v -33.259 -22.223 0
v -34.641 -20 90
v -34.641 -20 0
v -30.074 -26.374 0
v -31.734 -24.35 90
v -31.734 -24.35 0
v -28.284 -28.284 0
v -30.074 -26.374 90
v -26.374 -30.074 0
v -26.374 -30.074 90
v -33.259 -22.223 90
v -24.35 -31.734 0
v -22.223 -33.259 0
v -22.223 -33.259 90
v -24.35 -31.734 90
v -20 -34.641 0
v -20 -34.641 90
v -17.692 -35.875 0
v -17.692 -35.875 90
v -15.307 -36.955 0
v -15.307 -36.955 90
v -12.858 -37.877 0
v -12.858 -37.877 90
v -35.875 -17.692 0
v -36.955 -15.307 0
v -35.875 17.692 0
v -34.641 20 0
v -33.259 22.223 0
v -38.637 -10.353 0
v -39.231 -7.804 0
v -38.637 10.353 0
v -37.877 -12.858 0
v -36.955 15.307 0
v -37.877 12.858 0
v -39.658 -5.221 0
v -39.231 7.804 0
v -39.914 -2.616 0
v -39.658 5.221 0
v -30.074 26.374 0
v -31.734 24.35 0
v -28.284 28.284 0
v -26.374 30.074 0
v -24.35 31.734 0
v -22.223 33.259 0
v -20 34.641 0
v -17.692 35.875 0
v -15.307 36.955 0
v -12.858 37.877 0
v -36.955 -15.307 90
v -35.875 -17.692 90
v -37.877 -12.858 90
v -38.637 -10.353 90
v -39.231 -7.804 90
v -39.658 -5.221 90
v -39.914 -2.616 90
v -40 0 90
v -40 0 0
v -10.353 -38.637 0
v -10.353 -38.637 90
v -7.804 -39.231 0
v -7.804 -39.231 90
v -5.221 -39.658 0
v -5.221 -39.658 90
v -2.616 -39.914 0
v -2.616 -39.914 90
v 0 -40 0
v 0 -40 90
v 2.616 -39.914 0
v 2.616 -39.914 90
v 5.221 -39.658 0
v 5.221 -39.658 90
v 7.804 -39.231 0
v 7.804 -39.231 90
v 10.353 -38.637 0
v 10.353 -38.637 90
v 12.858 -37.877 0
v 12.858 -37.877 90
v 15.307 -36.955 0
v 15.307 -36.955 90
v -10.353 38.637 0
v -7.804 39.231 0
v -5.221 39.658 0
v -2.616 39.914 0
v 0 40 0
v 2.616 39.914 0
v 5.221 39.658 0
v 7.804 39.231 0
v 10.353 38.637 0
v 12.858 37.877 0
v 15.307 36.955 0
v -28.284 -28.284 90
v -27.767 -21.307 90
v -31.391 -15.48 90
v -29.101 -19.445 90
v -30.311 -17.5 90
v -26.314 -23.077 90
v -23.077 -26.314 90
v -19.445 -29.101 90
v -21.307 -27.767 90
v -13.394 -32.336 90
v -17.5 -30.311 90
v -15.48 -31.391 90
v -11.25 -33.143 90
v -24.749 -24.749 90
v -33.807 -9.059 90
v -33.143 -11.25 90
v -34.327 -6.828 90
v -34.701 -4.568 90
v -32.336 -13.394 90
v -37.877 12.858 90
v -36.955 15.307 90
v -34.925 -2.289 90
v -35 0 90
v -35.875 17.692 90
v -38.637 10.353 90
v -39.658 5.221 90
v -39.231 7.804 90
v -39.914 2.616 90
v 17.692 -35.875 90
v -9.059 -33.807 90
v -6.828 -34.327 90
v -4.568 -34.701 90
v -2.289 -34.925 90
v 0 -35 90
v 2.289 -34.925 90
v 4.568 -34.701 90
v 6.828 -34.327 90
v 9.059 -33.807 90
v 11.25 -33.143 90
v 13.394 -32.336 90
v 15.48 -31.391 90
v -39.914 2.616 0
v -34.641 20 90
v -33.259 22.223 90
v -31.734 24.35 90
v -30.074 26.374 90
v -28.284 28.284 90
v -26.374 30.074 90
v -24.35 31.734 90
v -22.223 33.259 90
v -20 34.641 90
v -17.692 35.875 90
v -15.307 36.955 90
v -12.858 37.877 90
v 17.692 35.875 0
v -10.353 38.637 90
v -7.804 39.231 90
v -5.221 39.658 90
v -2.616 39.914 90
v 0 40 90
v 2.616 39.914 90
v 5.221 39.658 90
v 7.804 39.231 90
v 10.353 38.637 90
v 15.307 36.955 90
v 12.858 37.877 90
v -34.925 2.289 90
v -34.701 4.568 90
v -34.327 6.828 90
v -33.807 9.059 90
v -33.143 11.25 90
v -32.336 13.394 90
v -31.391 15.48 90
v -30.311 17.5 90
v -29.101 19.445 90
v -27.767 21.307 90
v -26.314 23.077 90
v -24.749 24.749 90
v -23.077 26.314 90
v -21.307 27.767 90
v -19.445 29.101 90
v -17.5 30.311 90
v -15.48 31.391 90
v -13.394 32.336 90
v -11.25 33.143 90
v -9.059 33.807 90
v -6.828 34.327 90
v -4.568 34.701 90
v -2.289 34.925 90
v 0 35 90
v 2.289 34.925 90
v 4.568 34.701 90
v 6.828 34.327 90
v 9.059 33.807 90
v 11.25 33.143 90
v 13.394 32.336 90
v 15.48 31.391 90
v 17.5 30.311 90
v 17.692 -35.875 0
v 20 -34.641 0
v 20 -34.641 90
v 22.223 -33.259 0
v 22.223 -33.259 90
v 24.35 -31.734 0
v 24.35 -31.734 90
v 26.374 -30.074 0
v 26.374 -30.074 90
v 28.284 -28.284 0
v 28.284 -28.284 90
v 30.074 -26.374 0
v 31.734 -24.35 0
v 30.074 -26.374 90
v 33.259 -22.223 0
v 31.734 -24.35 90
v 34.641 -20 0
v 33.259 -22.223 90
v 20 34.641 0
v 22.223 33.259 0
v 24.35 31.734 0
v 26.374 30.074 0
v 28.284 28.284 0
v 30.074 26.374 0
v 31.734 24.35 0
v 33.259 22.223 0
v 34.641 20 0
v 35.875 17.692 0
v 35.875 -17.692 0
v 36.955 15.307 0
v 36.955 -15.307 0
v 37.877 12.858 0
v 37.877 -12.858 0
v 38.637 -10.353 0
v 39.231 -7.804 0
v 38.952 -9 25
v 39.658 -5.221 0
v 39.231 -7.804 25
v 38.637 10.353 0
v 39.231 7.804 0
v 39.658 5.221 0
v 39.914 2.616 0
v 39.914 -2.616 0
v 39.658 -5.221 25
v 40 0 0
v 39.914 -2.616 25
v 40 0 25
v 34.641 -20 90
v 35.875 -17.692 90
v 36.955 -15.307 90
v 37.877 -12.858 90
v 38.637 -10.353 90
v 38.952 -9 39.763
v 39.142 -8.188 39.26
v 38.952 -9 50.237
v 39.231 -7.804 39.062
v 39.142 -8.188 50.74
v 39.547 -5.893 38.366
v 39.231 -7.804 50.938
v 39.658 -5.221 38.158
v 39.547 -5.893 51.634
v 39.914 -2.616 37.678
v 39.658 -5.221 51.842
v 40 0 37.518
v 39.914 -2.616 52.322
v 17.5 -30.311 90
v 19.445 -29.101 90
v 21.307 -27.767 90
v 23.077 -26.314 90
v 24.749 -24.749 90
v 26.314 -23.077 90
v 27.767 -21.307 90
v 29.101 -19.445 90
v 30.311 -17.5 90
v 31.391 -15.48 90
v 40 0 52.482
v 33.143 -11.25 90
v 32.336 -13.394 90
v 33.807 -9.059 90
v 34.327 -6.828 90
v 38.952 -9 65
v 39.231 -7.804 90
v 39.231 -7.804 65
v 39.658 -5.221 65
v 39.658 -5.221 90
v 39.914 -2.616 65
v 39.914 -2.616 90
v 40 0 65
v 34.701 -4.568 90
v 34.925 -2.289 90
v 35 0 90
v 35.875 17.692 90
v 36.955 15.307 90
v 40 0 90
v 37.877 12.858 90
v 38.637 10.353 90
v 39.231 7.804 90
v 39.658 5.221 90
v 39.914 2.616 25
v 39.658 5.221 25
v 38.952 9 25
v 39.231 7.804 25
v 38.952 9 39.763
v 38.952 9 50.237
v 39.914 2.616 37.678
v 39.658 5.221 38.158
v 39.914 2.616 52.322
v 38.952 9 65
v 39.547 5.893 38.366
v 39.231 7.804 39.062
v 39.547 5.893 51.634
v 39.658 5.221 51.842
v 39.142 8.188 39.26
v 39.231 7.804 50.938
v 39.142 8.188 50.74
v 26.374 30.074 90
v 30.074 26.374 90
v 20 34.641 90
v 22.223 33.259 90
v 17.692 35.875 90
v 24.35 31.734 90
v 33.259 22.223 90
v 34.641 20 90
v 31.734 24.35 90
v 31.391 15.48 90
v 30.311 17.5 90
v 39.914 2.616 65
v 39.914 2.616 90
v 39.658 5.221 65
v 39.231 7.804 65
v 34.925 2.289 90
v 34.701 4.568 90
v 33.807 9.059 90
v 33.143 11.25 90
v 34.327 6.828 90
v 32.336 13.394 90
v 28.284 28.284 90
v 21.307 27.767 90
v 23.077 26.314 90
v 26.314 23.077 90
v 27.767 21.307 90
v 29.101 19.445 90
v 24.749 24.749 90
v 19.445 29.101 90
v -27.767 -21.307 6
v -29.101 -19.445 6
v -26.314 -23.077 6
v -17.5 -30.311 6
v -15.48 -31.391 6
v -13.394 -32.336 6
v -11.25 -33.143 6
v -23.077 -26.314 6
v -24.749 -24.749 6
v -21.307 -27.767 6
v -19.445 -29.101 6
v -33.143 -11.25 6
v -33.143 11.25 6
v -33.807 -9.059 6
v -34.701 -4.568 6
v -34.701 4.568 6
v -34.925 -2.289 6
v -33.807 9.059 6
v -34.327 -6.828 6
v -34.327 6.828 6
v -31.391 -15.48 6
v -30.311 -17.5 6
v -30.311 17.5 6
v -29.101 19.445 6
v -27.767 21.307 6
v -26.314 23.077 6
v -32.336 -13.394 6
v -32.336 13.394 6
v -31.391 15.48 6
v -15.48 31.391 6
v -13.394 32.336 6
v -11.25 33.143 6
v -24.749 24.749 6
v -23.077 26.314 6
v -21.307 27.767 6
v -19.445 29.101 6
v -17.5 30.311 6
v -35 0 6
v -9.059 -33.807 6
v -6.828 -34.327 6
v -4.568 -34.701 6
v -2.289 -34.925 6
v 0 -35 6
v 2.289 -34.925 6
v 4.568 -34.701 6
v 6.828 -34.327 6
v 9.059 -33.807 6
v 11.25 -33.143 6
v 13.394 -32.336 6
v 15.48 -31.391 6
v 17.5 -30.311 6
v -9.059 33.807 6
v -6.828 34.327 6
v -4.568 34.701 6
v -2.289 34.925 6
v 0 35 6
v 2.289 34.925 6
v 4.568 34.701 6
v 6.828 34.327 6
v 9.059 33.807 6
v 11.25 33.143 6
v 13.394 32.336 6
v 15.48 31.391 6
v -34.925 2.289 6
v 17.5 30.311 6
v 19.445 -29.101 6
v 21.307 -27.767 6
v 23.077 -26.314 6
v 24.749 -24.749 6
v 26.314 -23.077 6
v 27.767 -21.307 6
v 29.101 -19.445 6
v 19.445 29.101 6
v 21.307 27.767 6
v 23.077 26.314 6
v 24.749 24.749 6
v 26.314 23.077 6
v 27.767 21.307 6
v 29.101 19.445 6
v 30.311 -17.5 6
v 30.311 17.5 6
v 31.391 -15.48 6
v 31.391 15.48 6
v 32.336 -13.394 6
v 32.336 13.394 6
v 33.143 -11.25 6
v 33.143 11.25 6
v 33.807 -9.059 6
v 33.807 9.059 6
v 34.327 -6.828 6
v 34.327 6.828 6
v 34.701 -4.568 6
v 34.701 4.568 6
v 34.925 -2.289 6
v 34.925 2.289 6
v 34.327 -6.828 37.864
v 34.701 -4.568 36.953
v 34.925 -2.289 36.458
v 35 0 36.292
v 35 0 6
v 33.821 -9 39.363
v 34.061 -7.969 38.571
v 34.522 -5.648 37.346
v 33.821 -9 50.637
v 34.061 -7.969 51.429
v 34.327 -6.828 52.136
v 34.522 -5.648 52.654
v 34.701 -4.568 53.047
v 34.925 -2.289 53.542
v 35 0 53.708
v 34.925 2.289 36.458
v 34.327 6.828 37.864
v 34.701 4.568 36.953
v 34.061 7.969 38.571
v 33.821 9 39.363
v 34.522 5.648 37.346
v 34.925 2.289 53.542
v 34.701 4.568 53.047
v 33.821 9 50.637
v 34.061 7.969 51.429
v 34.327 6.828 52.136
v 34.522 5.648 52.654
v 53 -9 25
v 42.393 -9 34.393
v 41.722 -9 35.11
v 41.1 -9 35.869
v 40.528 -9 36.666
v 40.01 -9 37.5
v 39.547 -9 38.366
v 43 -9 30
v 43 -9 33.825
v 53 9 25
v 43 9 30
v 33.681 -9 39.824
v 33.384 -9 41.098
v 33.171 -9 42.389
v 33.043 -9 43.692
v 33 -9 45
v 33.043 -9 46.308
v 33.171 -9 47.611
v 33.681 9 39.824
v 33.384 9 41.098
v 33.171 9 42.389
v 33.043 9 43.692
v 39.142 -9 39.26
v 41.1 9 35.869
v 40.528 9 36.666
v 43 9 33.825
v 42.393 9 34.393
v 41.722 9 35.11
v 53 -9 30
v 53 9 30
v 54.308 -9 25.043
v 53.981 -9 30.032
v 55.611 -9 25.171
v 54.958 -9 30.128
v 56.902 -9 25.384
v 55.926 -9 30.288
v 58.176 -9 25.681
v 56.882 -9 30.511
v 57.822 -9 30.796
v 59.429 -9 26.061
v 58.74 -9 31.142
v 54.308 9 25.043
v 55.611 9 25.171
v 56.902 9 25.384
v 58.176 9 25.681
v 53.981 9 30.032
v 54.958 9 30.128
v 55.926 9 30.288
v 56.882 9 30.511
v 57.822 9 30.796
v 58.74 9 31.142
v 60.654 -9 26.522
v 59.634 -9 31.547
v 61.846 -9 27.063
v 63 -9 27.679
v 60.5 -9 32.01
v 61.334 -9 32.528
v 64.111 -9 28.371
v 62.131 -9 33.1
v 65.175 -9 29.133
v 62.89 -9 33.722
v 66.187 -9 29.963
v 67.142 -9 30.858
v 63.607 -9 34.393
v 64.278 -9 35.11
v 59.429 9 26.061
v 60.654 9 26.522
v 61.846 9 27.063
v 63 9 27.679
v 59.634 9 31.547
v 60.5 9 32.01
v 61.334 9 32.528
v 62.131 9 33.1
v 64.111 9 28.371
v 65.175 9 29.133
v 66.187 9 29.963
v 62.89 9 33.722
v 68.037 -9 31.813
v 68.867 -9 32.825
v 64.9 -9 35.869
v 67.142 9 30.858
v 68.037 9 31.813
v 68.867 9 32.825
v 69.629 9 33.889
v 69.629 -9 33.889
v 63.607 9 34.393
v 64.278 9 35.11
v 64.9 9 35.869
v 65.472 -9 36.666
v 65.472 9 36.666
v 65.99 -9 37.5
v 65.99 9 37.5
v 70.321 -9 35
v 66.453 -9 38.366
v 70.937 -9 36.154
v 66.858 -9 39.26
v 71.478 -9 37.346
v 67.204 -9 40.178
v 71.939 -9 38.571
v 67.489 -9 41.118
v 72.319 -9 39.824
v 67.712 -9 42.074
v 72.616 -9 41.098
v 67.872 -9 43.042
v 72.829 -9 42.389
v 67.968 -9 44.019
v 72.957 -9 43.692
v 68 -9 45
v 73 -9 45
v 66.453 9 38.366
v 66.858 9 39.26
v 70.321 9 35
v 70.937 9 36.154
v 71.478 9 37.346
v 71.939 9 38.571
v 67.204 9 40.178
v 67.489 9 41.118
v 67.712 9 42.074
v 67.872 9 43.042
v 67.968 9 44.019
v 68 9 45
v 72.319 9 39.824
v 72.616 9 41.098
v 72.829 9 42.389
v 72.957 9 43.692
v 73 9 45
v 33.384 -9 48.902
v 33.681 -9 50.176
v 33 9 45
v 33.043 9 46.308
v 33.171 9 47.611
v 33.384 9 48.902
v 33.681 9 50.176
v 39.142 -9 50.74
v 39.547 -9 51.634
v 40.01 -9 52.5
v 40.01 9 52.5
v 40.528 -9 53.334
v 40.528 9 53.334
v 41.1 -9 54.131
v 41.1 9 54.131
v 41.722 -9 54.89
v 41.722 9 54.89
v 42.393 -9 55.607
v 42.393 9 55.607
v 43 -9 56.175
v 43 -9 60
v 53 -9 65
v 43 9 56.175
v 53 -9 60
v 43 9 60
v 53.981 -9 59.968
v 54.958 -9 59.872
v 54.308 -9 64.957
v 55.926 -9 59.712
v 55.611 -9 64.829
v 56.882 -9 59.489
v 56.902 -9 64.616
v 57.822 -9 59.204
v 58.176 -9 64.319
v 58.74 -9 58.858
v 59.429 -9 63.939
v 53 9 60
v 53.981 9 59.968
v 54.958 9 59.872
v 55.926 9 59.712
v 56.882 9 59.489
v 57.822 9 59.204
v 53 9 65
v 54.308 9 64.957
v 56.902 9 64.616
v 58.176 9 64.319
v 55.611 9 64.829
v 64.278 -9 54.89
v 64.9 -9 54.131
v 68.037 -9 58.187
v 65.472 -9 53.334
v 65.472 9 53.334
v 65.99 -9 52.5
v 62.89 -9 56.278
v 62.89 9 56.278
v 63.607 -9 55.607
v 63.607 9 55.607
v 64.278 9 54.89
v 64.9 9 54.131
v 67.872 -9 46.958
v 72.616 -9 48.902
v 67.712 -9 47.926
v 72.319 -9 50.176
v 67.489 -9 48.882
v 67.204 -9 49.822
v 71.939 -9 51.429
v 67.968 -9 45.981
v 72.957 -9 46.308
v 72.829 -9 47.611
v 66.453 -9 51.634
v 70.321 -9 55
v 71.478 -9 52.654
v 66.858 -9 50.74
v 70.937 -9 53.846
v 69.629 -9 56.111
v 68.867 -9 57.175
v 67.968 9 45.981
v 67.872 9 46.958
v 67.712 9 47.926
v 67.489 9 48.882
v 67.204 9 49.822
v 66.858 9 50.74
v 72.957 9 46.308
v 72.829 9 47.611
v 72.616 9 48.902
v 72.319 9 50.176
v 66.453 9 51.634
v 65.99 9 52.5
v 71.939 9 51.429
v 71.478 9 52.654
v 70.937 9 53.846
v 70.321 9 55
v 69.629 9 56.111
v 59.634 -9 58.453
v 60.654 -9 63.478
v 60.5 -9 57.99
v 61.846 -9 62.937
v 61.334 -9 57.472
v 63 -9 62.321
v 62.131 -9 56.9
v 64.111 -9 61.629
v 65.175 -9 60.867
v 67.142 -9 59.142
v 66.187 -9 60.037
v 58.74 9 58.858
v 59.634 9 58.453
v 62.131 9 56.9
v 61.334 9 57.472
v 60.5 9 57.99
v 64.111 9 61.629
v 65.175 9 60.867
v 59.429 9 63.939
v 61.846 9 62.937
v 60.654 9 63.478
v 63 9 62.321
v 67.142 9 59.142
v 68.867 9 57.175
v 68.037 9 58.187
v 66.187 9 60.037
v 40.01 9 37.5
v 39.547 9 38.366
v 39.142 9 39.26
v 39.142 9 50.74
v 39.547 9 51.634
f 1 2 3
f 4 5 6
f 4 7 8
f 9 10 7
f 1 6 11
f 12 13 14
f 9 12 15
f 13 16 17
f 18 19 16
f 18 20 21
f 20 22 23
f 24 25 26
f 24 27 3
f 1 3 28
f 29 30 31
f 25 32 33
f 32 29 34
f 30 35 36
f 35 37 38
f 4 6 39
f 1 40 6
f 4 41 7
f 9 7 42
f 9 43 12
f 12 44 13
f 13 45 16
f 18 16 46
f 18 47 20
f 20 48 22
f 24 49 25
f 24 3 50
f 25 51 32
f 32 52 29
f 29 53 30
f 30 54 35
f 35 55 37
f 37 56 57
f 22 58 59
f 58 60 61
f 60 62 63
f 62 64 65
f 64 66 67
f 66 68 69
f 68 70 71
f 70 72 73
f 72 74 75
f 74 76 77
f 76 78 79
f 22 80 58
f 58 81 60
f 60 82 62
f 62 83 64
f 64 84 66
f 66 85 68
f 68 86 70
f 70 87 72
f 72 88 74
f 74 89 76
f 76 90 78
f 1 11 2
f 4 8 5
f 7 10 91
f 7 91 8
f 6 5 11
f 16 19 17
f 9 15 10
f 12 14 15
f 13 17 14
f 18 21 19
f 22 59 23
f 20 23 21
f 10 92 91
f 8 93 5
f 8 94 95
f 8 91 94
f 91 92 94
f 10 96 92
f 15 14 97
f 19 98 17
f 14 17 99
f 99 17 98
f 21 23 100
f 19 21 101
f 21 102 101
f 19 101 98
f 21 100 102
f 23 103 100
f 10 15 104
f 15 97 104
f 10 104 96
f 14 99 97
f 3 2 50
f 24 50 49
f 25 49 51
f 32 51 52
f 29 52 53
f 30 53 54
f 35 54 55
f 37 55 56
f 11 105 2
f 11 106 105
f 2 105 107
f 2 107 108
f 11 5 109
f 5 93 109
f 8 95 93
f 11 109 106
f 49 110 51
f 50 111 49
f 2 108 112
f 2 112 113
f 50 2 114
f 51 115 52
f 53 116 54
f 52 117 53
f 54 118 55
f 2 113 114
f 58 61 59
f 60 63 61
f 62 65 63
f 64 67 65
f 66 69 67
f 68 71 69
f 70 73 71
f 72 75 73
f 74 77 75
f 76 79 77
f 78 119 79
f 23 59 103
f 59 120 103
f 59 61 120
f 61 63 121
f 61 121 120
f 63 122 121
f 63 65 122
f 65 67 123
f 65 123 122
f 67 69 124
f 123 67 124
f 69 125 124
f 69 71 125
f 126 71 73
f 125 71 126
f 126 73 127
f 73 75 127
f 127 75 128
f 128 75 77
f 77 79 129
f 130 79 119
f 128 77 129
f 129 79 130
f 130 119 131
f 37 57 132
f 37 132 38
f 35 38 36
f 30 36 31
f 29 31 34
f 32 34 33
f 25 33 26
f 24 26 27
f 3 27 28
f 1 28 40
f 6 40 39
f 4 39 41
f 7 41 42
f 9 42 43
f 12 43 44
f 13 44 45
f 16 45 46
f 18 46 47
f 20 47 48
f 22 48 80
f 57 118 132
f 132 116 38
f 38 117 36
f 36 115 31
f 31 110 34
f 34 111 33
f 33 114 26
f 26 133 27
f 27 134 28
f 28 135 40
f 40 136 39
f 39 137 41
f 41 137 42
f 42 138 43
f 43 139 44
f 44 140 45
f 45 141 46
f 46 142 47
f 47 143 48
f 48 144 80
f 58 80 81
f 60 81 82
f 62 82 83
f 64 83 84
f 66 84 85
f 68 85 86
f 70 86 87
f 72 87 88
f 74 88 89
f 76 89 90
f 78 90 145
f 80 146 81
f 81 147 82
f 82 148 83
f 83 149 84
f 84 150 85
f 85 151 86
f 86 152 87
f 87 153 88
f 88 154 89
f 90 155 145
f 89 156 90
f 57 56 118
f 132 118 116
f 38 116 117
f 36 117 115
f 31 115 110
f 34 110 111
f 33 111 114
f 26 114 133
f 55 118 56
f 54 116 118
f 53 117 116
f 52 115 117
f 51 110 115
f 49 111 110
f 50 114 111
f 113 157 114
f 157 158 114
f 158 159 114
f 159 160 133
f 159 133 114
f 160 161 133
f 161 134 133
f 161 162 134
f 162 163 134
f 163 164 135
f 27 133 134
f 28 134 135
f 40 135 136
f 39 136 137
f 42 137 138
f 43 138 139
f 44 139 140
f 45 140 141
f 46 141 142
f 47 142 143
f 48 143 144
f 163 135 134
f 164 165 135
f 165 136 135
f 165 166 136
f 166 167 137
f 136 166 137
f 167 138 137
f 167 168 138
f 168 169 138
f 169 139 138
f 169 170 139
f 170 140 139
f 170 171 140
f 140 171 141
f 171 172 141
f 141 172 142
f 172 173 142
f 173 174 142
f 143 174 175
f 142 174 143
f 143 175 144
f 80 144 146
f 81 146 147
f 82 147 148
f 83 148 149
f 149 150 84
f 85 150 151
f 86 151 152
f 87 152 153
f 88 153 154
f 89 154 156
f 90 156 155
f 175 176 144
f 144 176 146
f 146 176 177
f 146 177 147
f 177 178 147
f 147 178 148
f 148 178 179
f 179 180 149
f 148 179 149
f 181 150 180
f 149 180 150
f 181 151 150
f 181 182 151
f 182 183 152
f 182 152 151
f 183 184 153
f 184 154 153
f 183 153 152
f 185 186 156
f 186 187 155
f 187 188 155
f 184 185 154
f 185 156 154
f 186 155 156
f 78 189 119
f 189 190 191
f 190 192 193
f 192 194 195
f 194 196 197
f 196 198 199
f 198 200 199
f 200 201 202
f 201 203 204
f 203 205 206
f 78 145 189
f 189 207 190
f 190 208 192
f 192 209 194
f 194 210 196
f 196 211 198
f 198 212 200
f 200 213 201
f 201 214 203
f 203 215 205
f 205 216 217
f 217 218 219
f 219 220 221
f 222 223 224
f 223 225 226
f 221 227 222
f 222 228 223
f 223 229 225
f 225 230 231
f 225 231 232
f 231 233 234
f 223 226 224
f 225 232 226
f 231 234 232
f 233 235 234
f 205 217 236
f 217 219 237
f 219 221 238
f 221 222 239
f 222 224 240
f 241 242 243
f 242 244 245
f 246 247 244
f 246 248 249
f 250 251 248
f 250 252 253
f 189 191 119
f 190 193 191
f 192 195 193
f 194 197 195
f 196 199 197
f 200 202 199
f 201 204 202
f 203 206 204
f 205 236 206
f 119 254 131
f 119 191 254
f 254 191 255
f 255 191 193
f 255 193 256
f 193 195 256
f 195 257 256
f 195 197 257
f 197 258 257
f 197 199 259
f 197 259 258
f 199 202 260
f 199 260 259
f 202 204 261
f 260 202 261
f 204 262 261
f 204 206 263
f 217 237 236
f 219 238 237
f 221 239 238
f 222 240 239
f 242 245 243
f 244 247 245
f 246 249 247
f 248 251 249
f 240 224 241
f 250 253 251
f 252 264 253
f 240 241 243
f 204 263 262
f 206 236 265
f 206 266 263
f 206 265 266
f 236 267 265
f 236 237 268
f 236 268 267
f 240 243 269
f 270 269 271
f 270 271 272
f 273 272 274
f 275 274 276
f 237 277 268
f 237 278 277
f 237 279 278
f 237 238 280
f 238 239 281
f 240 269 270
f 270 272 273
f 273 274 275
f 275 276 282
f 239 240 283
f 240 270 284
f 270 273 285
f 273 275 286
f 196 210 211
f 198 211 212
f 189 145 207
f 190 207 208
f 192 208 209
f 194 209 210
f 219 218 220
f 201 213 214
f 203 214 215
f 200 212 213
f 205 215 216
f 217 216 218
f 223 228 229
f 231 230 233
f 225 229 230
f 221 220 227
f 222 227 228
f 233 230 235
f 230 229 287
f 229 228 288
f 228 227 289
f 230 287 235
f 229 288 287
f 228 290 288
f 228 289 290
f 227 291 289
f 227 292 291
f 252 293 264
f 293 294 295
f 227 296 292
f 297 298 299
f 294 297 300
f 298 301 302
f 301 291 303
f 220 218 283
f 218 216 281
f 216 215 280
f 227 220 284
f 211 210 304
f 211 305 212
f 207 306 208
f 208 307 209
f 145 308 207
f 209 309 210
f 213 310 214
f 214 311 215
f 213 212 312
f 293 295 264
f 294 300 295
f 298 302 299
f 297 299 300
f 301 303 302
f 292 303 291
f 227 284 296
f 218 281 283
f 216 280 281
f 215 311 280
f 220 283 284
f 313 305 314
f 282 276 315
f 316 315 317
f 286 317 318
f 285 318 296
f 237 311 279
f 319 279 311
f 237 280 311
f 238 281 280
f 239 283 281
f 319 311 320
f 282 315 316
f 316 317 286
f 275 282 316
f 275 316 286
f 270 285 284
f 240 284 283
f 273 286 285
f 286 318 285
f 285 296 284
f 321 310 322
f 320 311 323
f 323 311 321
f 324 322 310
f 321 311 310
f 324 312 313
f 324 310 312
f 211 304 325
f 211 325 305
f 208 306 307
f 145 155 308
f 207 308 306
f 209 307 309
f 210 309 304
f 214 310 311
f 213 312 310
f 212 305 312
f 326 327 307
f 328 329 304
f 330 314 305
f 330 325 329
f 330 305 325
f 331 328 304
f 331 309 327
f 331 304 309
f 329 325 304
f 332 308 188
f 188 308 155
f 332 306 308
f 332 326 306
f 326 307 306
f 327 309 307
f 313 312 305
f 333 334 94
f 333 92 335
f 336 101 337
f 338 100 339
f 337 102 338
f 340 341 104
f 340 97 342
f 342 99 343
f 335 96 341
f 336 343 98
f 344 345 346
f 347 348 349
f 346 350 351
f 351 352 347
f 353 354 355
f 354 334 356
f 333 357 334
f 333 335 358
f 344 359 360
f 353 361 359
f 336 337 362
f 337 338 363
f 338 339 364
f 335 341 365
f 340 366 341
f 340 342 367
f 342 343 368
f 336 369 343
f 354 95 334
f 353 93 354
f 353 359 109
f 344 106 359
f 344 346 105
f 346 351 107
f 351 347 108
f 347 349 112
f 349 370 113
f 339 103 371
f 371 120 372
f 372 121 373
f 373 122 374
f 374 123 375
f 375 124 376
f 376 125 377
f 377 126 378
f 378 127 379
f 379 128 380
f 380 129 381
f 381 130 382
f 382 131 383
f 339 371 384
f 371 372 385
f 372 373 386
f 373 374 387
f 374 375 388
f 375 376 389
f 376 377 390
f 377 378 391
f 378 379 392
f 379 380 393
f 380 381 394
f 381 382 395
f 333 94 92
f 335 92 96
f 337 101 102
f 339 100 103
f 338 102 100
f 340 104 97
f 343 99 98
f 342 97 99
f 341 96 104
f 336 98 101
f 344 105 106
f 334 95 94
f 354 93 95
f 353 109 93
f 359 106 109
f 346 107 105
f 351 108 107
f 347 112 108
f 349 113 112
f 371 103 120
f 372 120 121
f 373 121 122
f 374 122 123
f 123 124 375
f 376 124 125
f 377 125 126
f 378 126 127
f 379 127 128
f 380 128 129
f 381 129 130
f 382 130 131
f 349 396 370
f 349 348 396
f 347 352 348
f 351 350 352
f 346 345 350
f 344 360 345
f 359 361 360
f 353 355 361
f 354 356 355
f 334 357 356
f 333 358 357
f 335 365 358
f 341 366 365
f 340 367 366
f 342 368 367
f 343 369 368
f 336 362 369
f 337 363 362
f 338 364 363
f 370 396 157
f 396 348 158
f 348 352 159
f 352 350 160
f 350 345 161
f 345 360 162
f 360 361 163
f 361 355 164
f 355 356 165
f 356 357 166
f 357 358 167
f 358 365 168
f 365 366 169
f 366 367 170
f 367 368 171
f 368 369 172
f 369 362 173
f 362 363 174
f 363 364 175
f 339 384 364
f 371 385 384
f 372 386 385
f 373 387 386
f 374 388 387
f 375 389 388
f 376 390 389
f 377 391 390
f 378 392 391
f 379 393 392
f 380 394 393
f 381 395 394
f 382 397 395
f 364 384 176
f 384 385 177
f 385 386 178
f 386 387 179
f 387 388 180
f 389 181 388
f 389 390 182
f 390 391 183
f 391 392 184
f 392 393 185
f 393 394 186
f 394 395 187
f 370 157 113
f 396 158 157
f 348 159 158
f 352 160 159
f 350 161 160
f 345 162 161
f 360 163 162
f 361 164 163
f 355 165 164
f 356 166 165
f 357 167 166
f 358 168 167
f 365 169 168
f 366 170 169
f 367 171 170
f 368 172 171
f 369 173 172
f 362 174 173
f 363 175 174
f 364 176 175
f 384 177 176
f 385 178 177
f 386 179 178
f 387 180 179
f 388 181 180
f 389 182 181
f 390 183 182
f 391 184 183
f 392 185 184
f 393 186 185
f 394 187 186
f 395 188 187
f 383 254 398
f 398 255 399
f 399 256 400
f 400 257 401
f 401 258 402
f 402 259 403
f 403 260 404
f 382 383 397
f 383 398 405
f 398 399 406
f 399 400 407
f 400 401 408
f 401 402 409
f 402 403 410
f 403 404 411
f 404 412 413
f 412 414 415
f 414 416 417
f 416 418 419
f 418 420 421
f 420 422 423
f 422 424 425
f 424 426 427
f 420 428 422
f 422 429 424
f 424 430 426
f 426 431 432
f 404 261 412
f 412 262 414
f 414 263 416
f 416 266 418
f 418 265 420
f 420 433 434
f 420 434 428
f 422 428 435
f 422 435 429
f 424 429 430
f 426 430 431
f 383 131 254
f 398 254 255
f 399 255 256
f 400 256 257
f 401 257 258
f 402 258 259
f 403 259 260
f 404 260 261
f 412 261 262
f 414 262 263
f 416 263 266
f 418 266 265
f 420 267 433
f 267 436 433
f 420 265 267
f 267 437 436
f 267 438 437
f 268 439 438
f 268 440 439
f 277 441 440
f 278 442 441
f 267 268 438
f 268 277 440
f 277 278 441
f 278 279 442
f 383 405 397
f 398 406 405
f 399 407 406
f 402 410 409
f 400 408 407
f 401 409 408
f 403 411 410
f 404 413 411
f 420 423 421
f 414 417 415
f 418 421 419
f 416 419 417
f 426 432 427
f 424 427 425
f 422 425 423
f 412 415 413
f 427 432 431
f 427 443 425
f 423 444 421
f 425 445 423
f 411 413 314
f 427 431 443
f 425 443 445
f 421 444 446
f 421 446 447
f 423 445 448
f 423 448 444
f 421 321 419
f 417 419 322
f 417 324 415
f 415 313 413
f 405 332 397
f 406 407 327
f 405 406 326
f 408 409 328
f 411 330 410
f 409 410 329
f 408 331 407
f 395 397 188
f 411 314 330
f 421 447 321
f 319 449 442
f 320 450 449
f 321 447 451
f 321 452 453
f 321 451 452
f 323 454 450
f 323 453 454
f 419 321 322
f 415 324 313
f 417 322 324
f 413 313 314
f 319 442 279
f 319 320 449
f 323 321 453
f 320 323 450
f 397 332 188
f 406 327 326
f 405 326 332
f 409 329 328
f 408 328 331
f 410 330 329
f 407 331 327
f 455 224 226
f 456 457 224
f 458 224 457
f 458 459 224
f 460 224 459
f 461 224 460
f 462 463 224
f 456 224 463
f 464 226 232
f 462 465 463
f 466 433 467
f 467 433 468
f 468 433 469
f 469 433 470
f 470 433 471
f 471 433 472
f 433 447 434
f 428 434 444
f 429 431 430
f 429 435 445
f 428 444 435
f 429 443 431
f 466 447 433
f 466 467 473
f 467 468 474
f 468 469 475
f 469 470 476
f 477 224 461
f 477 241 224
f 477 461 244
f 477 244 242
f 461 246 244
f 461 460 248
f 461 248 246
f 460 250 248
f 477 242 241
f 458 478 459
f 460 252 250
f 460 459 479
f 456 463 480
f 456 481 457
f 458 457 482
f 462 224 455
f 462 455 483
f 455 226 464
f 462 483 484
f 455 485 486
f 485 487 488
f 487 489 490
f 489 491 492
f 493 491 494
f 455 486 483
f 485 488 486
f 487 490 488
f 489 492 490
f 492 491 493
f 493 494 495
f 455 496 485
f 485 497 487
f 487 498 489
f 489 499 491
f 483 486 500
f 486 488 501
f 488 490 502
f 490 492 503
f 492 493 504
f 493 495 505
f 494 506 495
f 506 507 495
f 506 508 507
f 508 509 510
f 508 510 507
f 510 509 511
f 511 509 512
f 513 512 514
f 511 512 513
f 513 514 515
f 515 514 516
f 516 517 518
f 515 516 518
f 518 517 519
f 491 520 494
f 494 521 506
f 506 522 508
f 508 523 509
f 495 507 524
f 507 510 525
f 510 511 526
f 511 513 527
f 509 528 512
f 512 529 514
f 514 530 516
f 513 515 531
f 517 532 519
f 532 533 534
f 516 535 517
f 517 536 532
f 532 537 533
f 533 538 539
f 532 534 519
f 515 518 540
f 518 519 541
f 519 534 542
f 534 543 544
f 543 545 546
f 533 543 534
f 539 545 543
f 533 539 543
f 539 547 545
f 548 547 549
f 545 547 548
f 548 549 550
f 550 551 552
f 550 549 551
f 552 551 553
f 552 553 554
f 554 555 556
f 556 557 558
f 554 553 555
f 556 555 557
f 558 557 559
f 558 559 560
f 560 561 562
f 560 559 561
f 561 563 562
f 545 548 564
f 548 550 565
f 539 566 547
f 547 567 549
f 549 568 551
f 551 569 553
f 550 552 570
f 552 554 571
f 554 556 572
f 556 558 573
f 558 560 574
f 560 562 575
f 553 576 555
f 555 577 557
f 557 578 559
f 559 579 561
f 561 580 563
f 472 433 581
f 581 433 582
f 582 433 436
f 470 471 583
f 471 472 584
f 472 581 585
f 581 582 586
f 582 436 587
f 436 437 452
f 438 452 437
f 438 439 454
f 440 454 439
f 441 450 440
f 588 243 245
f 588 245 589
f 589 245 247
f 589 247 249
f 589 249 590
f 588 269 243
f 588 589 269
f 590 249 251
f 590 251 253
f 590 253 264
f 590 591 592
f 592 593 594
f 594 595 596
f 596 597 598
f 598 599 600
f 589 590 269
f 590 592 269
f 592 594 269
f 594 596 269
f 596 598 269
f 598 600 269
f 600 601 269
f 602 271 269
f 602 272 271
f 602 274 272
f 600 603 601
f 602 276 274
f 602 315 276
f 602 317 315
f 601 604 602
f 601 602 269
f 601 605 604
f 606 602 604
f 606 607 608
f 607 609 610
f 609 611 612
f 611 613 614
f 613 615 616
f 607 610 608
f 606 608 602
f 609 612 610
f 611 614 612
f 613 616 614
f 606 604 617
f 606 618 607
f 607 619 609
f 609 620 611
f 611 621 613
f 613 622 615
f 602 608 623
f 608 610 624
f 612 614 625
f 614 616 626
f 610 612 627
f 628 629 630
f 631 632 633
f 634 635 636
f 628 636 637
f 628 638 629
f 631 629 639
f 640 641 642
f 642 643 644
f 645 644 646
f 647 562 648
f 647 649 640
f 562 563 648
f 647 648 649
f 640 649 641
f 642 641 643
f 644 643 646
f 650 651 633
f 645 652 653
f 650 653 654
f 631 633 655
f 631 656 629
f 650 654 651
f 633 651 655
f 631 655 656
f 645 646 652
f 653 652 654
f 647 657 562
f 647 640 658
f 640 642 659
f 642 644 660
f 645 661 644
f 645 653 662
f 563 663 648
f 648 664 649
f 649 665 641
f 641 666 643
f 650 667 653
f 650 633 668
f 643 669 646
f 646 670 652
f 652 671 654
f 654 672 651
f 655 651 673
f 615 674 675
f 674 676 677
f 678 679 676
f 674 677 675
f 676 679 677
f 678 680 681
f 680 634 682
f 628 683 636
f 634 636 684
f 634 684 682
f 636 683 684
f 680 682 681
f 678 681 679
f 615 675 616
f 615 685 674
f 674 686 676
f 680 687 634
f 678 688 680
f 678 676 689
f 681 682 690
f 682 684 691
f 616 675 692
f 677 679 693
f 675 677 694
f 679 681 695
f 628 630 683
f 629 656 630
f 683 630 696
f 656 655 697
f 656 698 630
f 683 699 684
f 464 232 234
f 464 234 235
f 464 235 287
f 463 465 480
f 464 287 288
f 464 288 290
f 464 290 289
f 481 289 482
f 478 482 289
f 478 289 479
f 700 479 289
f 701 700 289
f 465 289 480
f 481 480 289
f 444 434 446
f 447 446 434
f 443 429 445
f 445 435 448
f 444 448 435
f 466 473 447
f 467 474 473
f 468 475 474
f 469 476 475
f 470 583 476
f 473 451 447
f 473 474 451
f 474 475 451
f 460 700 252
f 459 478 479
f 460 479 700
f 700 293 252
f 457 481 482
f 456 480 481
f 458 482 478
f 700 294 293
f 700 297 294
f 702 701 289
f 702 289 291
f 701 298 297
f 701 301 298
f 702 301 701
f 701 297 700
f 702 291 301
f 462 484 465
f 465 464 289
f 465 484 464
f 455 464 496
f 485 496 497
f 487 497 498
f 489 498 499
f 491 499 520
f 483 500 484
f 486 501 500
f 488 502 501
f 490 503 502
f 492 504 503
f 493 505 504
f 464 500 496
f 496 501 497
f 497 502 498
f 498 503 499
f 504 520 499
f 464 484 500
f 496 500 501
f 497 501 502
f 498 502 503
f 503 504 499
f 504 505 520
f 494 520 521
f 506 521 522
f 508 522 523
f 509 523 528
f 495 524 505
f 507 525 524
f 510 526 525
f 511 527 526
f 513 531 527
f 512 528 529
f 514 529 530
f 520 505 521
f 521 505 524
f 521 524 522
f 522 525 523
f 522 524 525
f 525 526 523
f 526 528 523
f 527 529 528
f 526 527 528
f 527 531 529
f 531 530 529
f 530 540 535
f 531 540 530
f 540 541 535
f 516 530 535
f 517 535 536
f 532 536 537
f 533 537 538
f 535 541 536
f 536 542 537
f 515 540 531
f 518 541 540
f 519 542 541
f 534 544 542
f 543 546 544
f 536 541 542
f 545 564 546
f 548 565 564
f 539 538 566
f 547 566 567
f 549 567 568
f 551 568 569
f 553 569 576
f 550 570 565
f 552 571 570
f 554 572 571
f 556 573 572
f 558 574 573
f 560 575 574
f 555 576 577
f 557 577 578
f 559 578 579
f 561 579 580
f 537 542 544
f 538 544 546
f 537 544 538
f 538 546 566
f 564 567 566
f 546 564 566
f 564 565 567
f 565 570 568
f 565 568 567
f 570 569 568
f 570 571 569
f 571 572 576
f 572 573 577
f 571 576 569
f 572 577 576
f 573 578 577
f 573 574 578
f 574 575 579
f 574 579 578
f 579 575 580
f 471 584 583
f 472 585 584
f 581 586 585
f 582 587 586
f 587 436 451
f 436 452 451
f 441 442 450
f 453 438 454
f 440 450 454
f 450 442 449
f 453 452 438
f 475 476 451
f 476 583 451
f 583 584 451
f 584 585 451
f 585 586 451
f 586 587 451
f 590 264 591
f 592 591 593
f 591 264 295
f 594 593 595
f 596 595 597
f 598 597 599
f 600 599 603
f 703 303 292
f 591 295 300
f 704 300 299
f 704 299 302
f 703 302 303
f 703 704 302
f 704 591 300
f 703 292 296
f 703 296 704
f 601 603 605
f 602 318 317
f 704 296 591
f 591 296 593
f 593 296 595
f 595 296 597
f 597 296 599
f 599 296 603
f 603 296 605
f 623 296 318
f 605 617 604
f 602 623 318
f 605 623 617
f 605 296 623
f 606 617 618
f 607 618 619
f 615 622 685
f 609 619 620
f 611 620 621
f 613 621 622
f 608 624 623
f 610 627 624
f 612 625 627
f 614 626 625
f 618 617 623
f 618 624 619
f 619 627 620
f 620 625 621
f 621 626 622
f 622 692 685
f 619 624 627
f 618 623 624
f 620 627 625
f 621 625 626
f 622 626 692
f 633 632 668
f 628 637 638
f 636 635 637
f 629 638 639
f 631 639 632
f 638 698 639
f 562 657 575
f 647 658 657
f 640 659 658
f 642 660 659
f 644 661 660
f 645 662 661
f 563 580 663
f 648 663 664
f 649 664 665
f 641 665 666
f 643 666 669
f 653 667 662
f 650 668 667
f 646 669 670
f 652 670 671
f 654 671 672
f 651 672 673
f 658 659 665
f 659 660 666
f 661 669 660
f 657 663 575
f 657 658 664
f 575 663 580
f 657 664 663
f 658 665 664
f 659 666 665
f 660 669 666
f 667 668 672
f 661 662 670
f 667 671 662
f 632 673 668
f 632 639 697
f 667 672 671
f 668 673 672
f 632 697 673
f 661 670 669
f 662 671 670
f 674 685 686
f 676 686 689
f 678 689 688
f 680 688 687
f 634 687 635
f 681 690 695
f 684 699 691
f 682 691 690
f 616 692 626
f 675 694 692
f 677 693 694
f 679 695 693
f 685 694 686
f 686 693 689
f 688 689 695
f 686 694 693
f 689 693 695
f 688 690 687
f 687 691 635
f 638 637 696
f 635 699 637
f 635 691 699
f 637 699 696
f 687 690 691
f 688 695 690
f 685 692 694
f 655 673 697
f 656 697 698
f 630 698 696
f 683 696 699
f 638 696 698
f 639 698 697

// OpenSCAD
$fn = 96;

mug_h = 90;
body_od = 80;
body_id = 70;
base_th = 6;

handle_open_h = 30;
handle_open_w = 25;
handle_wall   = 5;

handle_outer_h = handle_open_h + 2 * handle_wall;
handle_outer_w = handle_open_w + 2 * handle_wall;

handle_depth = 18;
handle_x = body_od / 2 - 2;
handle_z = mug_h / 2;

module dshape(w, h) {
    r = h / 2;
    union() {
        translate([0, -r]) square([w - r, h], center = false);
        translate([w - r, 0]) circle(r = r);
    }
}

module body() {
    difference() {
        cylinder(h = mug_h, d = body_od);
        translate([0, 0, base_th])
            cylinder(h = mug_h - base_th + 2, d = body_id);
    }
}

module handle() {
    rotate([90, 0, 0])
        linear_extrude(height = handle_depth, center = true, convexity = 10)
            difference() {
                translate([handle_x, handle_z])
                    dshape(handle_outer_w, handle_outer_h);
                translate([handle_x + handle_wall, handle_z])
                    dshape(handle_open_w, handle_open_h);
            }
}

union() {
    body();
    handle();
}
